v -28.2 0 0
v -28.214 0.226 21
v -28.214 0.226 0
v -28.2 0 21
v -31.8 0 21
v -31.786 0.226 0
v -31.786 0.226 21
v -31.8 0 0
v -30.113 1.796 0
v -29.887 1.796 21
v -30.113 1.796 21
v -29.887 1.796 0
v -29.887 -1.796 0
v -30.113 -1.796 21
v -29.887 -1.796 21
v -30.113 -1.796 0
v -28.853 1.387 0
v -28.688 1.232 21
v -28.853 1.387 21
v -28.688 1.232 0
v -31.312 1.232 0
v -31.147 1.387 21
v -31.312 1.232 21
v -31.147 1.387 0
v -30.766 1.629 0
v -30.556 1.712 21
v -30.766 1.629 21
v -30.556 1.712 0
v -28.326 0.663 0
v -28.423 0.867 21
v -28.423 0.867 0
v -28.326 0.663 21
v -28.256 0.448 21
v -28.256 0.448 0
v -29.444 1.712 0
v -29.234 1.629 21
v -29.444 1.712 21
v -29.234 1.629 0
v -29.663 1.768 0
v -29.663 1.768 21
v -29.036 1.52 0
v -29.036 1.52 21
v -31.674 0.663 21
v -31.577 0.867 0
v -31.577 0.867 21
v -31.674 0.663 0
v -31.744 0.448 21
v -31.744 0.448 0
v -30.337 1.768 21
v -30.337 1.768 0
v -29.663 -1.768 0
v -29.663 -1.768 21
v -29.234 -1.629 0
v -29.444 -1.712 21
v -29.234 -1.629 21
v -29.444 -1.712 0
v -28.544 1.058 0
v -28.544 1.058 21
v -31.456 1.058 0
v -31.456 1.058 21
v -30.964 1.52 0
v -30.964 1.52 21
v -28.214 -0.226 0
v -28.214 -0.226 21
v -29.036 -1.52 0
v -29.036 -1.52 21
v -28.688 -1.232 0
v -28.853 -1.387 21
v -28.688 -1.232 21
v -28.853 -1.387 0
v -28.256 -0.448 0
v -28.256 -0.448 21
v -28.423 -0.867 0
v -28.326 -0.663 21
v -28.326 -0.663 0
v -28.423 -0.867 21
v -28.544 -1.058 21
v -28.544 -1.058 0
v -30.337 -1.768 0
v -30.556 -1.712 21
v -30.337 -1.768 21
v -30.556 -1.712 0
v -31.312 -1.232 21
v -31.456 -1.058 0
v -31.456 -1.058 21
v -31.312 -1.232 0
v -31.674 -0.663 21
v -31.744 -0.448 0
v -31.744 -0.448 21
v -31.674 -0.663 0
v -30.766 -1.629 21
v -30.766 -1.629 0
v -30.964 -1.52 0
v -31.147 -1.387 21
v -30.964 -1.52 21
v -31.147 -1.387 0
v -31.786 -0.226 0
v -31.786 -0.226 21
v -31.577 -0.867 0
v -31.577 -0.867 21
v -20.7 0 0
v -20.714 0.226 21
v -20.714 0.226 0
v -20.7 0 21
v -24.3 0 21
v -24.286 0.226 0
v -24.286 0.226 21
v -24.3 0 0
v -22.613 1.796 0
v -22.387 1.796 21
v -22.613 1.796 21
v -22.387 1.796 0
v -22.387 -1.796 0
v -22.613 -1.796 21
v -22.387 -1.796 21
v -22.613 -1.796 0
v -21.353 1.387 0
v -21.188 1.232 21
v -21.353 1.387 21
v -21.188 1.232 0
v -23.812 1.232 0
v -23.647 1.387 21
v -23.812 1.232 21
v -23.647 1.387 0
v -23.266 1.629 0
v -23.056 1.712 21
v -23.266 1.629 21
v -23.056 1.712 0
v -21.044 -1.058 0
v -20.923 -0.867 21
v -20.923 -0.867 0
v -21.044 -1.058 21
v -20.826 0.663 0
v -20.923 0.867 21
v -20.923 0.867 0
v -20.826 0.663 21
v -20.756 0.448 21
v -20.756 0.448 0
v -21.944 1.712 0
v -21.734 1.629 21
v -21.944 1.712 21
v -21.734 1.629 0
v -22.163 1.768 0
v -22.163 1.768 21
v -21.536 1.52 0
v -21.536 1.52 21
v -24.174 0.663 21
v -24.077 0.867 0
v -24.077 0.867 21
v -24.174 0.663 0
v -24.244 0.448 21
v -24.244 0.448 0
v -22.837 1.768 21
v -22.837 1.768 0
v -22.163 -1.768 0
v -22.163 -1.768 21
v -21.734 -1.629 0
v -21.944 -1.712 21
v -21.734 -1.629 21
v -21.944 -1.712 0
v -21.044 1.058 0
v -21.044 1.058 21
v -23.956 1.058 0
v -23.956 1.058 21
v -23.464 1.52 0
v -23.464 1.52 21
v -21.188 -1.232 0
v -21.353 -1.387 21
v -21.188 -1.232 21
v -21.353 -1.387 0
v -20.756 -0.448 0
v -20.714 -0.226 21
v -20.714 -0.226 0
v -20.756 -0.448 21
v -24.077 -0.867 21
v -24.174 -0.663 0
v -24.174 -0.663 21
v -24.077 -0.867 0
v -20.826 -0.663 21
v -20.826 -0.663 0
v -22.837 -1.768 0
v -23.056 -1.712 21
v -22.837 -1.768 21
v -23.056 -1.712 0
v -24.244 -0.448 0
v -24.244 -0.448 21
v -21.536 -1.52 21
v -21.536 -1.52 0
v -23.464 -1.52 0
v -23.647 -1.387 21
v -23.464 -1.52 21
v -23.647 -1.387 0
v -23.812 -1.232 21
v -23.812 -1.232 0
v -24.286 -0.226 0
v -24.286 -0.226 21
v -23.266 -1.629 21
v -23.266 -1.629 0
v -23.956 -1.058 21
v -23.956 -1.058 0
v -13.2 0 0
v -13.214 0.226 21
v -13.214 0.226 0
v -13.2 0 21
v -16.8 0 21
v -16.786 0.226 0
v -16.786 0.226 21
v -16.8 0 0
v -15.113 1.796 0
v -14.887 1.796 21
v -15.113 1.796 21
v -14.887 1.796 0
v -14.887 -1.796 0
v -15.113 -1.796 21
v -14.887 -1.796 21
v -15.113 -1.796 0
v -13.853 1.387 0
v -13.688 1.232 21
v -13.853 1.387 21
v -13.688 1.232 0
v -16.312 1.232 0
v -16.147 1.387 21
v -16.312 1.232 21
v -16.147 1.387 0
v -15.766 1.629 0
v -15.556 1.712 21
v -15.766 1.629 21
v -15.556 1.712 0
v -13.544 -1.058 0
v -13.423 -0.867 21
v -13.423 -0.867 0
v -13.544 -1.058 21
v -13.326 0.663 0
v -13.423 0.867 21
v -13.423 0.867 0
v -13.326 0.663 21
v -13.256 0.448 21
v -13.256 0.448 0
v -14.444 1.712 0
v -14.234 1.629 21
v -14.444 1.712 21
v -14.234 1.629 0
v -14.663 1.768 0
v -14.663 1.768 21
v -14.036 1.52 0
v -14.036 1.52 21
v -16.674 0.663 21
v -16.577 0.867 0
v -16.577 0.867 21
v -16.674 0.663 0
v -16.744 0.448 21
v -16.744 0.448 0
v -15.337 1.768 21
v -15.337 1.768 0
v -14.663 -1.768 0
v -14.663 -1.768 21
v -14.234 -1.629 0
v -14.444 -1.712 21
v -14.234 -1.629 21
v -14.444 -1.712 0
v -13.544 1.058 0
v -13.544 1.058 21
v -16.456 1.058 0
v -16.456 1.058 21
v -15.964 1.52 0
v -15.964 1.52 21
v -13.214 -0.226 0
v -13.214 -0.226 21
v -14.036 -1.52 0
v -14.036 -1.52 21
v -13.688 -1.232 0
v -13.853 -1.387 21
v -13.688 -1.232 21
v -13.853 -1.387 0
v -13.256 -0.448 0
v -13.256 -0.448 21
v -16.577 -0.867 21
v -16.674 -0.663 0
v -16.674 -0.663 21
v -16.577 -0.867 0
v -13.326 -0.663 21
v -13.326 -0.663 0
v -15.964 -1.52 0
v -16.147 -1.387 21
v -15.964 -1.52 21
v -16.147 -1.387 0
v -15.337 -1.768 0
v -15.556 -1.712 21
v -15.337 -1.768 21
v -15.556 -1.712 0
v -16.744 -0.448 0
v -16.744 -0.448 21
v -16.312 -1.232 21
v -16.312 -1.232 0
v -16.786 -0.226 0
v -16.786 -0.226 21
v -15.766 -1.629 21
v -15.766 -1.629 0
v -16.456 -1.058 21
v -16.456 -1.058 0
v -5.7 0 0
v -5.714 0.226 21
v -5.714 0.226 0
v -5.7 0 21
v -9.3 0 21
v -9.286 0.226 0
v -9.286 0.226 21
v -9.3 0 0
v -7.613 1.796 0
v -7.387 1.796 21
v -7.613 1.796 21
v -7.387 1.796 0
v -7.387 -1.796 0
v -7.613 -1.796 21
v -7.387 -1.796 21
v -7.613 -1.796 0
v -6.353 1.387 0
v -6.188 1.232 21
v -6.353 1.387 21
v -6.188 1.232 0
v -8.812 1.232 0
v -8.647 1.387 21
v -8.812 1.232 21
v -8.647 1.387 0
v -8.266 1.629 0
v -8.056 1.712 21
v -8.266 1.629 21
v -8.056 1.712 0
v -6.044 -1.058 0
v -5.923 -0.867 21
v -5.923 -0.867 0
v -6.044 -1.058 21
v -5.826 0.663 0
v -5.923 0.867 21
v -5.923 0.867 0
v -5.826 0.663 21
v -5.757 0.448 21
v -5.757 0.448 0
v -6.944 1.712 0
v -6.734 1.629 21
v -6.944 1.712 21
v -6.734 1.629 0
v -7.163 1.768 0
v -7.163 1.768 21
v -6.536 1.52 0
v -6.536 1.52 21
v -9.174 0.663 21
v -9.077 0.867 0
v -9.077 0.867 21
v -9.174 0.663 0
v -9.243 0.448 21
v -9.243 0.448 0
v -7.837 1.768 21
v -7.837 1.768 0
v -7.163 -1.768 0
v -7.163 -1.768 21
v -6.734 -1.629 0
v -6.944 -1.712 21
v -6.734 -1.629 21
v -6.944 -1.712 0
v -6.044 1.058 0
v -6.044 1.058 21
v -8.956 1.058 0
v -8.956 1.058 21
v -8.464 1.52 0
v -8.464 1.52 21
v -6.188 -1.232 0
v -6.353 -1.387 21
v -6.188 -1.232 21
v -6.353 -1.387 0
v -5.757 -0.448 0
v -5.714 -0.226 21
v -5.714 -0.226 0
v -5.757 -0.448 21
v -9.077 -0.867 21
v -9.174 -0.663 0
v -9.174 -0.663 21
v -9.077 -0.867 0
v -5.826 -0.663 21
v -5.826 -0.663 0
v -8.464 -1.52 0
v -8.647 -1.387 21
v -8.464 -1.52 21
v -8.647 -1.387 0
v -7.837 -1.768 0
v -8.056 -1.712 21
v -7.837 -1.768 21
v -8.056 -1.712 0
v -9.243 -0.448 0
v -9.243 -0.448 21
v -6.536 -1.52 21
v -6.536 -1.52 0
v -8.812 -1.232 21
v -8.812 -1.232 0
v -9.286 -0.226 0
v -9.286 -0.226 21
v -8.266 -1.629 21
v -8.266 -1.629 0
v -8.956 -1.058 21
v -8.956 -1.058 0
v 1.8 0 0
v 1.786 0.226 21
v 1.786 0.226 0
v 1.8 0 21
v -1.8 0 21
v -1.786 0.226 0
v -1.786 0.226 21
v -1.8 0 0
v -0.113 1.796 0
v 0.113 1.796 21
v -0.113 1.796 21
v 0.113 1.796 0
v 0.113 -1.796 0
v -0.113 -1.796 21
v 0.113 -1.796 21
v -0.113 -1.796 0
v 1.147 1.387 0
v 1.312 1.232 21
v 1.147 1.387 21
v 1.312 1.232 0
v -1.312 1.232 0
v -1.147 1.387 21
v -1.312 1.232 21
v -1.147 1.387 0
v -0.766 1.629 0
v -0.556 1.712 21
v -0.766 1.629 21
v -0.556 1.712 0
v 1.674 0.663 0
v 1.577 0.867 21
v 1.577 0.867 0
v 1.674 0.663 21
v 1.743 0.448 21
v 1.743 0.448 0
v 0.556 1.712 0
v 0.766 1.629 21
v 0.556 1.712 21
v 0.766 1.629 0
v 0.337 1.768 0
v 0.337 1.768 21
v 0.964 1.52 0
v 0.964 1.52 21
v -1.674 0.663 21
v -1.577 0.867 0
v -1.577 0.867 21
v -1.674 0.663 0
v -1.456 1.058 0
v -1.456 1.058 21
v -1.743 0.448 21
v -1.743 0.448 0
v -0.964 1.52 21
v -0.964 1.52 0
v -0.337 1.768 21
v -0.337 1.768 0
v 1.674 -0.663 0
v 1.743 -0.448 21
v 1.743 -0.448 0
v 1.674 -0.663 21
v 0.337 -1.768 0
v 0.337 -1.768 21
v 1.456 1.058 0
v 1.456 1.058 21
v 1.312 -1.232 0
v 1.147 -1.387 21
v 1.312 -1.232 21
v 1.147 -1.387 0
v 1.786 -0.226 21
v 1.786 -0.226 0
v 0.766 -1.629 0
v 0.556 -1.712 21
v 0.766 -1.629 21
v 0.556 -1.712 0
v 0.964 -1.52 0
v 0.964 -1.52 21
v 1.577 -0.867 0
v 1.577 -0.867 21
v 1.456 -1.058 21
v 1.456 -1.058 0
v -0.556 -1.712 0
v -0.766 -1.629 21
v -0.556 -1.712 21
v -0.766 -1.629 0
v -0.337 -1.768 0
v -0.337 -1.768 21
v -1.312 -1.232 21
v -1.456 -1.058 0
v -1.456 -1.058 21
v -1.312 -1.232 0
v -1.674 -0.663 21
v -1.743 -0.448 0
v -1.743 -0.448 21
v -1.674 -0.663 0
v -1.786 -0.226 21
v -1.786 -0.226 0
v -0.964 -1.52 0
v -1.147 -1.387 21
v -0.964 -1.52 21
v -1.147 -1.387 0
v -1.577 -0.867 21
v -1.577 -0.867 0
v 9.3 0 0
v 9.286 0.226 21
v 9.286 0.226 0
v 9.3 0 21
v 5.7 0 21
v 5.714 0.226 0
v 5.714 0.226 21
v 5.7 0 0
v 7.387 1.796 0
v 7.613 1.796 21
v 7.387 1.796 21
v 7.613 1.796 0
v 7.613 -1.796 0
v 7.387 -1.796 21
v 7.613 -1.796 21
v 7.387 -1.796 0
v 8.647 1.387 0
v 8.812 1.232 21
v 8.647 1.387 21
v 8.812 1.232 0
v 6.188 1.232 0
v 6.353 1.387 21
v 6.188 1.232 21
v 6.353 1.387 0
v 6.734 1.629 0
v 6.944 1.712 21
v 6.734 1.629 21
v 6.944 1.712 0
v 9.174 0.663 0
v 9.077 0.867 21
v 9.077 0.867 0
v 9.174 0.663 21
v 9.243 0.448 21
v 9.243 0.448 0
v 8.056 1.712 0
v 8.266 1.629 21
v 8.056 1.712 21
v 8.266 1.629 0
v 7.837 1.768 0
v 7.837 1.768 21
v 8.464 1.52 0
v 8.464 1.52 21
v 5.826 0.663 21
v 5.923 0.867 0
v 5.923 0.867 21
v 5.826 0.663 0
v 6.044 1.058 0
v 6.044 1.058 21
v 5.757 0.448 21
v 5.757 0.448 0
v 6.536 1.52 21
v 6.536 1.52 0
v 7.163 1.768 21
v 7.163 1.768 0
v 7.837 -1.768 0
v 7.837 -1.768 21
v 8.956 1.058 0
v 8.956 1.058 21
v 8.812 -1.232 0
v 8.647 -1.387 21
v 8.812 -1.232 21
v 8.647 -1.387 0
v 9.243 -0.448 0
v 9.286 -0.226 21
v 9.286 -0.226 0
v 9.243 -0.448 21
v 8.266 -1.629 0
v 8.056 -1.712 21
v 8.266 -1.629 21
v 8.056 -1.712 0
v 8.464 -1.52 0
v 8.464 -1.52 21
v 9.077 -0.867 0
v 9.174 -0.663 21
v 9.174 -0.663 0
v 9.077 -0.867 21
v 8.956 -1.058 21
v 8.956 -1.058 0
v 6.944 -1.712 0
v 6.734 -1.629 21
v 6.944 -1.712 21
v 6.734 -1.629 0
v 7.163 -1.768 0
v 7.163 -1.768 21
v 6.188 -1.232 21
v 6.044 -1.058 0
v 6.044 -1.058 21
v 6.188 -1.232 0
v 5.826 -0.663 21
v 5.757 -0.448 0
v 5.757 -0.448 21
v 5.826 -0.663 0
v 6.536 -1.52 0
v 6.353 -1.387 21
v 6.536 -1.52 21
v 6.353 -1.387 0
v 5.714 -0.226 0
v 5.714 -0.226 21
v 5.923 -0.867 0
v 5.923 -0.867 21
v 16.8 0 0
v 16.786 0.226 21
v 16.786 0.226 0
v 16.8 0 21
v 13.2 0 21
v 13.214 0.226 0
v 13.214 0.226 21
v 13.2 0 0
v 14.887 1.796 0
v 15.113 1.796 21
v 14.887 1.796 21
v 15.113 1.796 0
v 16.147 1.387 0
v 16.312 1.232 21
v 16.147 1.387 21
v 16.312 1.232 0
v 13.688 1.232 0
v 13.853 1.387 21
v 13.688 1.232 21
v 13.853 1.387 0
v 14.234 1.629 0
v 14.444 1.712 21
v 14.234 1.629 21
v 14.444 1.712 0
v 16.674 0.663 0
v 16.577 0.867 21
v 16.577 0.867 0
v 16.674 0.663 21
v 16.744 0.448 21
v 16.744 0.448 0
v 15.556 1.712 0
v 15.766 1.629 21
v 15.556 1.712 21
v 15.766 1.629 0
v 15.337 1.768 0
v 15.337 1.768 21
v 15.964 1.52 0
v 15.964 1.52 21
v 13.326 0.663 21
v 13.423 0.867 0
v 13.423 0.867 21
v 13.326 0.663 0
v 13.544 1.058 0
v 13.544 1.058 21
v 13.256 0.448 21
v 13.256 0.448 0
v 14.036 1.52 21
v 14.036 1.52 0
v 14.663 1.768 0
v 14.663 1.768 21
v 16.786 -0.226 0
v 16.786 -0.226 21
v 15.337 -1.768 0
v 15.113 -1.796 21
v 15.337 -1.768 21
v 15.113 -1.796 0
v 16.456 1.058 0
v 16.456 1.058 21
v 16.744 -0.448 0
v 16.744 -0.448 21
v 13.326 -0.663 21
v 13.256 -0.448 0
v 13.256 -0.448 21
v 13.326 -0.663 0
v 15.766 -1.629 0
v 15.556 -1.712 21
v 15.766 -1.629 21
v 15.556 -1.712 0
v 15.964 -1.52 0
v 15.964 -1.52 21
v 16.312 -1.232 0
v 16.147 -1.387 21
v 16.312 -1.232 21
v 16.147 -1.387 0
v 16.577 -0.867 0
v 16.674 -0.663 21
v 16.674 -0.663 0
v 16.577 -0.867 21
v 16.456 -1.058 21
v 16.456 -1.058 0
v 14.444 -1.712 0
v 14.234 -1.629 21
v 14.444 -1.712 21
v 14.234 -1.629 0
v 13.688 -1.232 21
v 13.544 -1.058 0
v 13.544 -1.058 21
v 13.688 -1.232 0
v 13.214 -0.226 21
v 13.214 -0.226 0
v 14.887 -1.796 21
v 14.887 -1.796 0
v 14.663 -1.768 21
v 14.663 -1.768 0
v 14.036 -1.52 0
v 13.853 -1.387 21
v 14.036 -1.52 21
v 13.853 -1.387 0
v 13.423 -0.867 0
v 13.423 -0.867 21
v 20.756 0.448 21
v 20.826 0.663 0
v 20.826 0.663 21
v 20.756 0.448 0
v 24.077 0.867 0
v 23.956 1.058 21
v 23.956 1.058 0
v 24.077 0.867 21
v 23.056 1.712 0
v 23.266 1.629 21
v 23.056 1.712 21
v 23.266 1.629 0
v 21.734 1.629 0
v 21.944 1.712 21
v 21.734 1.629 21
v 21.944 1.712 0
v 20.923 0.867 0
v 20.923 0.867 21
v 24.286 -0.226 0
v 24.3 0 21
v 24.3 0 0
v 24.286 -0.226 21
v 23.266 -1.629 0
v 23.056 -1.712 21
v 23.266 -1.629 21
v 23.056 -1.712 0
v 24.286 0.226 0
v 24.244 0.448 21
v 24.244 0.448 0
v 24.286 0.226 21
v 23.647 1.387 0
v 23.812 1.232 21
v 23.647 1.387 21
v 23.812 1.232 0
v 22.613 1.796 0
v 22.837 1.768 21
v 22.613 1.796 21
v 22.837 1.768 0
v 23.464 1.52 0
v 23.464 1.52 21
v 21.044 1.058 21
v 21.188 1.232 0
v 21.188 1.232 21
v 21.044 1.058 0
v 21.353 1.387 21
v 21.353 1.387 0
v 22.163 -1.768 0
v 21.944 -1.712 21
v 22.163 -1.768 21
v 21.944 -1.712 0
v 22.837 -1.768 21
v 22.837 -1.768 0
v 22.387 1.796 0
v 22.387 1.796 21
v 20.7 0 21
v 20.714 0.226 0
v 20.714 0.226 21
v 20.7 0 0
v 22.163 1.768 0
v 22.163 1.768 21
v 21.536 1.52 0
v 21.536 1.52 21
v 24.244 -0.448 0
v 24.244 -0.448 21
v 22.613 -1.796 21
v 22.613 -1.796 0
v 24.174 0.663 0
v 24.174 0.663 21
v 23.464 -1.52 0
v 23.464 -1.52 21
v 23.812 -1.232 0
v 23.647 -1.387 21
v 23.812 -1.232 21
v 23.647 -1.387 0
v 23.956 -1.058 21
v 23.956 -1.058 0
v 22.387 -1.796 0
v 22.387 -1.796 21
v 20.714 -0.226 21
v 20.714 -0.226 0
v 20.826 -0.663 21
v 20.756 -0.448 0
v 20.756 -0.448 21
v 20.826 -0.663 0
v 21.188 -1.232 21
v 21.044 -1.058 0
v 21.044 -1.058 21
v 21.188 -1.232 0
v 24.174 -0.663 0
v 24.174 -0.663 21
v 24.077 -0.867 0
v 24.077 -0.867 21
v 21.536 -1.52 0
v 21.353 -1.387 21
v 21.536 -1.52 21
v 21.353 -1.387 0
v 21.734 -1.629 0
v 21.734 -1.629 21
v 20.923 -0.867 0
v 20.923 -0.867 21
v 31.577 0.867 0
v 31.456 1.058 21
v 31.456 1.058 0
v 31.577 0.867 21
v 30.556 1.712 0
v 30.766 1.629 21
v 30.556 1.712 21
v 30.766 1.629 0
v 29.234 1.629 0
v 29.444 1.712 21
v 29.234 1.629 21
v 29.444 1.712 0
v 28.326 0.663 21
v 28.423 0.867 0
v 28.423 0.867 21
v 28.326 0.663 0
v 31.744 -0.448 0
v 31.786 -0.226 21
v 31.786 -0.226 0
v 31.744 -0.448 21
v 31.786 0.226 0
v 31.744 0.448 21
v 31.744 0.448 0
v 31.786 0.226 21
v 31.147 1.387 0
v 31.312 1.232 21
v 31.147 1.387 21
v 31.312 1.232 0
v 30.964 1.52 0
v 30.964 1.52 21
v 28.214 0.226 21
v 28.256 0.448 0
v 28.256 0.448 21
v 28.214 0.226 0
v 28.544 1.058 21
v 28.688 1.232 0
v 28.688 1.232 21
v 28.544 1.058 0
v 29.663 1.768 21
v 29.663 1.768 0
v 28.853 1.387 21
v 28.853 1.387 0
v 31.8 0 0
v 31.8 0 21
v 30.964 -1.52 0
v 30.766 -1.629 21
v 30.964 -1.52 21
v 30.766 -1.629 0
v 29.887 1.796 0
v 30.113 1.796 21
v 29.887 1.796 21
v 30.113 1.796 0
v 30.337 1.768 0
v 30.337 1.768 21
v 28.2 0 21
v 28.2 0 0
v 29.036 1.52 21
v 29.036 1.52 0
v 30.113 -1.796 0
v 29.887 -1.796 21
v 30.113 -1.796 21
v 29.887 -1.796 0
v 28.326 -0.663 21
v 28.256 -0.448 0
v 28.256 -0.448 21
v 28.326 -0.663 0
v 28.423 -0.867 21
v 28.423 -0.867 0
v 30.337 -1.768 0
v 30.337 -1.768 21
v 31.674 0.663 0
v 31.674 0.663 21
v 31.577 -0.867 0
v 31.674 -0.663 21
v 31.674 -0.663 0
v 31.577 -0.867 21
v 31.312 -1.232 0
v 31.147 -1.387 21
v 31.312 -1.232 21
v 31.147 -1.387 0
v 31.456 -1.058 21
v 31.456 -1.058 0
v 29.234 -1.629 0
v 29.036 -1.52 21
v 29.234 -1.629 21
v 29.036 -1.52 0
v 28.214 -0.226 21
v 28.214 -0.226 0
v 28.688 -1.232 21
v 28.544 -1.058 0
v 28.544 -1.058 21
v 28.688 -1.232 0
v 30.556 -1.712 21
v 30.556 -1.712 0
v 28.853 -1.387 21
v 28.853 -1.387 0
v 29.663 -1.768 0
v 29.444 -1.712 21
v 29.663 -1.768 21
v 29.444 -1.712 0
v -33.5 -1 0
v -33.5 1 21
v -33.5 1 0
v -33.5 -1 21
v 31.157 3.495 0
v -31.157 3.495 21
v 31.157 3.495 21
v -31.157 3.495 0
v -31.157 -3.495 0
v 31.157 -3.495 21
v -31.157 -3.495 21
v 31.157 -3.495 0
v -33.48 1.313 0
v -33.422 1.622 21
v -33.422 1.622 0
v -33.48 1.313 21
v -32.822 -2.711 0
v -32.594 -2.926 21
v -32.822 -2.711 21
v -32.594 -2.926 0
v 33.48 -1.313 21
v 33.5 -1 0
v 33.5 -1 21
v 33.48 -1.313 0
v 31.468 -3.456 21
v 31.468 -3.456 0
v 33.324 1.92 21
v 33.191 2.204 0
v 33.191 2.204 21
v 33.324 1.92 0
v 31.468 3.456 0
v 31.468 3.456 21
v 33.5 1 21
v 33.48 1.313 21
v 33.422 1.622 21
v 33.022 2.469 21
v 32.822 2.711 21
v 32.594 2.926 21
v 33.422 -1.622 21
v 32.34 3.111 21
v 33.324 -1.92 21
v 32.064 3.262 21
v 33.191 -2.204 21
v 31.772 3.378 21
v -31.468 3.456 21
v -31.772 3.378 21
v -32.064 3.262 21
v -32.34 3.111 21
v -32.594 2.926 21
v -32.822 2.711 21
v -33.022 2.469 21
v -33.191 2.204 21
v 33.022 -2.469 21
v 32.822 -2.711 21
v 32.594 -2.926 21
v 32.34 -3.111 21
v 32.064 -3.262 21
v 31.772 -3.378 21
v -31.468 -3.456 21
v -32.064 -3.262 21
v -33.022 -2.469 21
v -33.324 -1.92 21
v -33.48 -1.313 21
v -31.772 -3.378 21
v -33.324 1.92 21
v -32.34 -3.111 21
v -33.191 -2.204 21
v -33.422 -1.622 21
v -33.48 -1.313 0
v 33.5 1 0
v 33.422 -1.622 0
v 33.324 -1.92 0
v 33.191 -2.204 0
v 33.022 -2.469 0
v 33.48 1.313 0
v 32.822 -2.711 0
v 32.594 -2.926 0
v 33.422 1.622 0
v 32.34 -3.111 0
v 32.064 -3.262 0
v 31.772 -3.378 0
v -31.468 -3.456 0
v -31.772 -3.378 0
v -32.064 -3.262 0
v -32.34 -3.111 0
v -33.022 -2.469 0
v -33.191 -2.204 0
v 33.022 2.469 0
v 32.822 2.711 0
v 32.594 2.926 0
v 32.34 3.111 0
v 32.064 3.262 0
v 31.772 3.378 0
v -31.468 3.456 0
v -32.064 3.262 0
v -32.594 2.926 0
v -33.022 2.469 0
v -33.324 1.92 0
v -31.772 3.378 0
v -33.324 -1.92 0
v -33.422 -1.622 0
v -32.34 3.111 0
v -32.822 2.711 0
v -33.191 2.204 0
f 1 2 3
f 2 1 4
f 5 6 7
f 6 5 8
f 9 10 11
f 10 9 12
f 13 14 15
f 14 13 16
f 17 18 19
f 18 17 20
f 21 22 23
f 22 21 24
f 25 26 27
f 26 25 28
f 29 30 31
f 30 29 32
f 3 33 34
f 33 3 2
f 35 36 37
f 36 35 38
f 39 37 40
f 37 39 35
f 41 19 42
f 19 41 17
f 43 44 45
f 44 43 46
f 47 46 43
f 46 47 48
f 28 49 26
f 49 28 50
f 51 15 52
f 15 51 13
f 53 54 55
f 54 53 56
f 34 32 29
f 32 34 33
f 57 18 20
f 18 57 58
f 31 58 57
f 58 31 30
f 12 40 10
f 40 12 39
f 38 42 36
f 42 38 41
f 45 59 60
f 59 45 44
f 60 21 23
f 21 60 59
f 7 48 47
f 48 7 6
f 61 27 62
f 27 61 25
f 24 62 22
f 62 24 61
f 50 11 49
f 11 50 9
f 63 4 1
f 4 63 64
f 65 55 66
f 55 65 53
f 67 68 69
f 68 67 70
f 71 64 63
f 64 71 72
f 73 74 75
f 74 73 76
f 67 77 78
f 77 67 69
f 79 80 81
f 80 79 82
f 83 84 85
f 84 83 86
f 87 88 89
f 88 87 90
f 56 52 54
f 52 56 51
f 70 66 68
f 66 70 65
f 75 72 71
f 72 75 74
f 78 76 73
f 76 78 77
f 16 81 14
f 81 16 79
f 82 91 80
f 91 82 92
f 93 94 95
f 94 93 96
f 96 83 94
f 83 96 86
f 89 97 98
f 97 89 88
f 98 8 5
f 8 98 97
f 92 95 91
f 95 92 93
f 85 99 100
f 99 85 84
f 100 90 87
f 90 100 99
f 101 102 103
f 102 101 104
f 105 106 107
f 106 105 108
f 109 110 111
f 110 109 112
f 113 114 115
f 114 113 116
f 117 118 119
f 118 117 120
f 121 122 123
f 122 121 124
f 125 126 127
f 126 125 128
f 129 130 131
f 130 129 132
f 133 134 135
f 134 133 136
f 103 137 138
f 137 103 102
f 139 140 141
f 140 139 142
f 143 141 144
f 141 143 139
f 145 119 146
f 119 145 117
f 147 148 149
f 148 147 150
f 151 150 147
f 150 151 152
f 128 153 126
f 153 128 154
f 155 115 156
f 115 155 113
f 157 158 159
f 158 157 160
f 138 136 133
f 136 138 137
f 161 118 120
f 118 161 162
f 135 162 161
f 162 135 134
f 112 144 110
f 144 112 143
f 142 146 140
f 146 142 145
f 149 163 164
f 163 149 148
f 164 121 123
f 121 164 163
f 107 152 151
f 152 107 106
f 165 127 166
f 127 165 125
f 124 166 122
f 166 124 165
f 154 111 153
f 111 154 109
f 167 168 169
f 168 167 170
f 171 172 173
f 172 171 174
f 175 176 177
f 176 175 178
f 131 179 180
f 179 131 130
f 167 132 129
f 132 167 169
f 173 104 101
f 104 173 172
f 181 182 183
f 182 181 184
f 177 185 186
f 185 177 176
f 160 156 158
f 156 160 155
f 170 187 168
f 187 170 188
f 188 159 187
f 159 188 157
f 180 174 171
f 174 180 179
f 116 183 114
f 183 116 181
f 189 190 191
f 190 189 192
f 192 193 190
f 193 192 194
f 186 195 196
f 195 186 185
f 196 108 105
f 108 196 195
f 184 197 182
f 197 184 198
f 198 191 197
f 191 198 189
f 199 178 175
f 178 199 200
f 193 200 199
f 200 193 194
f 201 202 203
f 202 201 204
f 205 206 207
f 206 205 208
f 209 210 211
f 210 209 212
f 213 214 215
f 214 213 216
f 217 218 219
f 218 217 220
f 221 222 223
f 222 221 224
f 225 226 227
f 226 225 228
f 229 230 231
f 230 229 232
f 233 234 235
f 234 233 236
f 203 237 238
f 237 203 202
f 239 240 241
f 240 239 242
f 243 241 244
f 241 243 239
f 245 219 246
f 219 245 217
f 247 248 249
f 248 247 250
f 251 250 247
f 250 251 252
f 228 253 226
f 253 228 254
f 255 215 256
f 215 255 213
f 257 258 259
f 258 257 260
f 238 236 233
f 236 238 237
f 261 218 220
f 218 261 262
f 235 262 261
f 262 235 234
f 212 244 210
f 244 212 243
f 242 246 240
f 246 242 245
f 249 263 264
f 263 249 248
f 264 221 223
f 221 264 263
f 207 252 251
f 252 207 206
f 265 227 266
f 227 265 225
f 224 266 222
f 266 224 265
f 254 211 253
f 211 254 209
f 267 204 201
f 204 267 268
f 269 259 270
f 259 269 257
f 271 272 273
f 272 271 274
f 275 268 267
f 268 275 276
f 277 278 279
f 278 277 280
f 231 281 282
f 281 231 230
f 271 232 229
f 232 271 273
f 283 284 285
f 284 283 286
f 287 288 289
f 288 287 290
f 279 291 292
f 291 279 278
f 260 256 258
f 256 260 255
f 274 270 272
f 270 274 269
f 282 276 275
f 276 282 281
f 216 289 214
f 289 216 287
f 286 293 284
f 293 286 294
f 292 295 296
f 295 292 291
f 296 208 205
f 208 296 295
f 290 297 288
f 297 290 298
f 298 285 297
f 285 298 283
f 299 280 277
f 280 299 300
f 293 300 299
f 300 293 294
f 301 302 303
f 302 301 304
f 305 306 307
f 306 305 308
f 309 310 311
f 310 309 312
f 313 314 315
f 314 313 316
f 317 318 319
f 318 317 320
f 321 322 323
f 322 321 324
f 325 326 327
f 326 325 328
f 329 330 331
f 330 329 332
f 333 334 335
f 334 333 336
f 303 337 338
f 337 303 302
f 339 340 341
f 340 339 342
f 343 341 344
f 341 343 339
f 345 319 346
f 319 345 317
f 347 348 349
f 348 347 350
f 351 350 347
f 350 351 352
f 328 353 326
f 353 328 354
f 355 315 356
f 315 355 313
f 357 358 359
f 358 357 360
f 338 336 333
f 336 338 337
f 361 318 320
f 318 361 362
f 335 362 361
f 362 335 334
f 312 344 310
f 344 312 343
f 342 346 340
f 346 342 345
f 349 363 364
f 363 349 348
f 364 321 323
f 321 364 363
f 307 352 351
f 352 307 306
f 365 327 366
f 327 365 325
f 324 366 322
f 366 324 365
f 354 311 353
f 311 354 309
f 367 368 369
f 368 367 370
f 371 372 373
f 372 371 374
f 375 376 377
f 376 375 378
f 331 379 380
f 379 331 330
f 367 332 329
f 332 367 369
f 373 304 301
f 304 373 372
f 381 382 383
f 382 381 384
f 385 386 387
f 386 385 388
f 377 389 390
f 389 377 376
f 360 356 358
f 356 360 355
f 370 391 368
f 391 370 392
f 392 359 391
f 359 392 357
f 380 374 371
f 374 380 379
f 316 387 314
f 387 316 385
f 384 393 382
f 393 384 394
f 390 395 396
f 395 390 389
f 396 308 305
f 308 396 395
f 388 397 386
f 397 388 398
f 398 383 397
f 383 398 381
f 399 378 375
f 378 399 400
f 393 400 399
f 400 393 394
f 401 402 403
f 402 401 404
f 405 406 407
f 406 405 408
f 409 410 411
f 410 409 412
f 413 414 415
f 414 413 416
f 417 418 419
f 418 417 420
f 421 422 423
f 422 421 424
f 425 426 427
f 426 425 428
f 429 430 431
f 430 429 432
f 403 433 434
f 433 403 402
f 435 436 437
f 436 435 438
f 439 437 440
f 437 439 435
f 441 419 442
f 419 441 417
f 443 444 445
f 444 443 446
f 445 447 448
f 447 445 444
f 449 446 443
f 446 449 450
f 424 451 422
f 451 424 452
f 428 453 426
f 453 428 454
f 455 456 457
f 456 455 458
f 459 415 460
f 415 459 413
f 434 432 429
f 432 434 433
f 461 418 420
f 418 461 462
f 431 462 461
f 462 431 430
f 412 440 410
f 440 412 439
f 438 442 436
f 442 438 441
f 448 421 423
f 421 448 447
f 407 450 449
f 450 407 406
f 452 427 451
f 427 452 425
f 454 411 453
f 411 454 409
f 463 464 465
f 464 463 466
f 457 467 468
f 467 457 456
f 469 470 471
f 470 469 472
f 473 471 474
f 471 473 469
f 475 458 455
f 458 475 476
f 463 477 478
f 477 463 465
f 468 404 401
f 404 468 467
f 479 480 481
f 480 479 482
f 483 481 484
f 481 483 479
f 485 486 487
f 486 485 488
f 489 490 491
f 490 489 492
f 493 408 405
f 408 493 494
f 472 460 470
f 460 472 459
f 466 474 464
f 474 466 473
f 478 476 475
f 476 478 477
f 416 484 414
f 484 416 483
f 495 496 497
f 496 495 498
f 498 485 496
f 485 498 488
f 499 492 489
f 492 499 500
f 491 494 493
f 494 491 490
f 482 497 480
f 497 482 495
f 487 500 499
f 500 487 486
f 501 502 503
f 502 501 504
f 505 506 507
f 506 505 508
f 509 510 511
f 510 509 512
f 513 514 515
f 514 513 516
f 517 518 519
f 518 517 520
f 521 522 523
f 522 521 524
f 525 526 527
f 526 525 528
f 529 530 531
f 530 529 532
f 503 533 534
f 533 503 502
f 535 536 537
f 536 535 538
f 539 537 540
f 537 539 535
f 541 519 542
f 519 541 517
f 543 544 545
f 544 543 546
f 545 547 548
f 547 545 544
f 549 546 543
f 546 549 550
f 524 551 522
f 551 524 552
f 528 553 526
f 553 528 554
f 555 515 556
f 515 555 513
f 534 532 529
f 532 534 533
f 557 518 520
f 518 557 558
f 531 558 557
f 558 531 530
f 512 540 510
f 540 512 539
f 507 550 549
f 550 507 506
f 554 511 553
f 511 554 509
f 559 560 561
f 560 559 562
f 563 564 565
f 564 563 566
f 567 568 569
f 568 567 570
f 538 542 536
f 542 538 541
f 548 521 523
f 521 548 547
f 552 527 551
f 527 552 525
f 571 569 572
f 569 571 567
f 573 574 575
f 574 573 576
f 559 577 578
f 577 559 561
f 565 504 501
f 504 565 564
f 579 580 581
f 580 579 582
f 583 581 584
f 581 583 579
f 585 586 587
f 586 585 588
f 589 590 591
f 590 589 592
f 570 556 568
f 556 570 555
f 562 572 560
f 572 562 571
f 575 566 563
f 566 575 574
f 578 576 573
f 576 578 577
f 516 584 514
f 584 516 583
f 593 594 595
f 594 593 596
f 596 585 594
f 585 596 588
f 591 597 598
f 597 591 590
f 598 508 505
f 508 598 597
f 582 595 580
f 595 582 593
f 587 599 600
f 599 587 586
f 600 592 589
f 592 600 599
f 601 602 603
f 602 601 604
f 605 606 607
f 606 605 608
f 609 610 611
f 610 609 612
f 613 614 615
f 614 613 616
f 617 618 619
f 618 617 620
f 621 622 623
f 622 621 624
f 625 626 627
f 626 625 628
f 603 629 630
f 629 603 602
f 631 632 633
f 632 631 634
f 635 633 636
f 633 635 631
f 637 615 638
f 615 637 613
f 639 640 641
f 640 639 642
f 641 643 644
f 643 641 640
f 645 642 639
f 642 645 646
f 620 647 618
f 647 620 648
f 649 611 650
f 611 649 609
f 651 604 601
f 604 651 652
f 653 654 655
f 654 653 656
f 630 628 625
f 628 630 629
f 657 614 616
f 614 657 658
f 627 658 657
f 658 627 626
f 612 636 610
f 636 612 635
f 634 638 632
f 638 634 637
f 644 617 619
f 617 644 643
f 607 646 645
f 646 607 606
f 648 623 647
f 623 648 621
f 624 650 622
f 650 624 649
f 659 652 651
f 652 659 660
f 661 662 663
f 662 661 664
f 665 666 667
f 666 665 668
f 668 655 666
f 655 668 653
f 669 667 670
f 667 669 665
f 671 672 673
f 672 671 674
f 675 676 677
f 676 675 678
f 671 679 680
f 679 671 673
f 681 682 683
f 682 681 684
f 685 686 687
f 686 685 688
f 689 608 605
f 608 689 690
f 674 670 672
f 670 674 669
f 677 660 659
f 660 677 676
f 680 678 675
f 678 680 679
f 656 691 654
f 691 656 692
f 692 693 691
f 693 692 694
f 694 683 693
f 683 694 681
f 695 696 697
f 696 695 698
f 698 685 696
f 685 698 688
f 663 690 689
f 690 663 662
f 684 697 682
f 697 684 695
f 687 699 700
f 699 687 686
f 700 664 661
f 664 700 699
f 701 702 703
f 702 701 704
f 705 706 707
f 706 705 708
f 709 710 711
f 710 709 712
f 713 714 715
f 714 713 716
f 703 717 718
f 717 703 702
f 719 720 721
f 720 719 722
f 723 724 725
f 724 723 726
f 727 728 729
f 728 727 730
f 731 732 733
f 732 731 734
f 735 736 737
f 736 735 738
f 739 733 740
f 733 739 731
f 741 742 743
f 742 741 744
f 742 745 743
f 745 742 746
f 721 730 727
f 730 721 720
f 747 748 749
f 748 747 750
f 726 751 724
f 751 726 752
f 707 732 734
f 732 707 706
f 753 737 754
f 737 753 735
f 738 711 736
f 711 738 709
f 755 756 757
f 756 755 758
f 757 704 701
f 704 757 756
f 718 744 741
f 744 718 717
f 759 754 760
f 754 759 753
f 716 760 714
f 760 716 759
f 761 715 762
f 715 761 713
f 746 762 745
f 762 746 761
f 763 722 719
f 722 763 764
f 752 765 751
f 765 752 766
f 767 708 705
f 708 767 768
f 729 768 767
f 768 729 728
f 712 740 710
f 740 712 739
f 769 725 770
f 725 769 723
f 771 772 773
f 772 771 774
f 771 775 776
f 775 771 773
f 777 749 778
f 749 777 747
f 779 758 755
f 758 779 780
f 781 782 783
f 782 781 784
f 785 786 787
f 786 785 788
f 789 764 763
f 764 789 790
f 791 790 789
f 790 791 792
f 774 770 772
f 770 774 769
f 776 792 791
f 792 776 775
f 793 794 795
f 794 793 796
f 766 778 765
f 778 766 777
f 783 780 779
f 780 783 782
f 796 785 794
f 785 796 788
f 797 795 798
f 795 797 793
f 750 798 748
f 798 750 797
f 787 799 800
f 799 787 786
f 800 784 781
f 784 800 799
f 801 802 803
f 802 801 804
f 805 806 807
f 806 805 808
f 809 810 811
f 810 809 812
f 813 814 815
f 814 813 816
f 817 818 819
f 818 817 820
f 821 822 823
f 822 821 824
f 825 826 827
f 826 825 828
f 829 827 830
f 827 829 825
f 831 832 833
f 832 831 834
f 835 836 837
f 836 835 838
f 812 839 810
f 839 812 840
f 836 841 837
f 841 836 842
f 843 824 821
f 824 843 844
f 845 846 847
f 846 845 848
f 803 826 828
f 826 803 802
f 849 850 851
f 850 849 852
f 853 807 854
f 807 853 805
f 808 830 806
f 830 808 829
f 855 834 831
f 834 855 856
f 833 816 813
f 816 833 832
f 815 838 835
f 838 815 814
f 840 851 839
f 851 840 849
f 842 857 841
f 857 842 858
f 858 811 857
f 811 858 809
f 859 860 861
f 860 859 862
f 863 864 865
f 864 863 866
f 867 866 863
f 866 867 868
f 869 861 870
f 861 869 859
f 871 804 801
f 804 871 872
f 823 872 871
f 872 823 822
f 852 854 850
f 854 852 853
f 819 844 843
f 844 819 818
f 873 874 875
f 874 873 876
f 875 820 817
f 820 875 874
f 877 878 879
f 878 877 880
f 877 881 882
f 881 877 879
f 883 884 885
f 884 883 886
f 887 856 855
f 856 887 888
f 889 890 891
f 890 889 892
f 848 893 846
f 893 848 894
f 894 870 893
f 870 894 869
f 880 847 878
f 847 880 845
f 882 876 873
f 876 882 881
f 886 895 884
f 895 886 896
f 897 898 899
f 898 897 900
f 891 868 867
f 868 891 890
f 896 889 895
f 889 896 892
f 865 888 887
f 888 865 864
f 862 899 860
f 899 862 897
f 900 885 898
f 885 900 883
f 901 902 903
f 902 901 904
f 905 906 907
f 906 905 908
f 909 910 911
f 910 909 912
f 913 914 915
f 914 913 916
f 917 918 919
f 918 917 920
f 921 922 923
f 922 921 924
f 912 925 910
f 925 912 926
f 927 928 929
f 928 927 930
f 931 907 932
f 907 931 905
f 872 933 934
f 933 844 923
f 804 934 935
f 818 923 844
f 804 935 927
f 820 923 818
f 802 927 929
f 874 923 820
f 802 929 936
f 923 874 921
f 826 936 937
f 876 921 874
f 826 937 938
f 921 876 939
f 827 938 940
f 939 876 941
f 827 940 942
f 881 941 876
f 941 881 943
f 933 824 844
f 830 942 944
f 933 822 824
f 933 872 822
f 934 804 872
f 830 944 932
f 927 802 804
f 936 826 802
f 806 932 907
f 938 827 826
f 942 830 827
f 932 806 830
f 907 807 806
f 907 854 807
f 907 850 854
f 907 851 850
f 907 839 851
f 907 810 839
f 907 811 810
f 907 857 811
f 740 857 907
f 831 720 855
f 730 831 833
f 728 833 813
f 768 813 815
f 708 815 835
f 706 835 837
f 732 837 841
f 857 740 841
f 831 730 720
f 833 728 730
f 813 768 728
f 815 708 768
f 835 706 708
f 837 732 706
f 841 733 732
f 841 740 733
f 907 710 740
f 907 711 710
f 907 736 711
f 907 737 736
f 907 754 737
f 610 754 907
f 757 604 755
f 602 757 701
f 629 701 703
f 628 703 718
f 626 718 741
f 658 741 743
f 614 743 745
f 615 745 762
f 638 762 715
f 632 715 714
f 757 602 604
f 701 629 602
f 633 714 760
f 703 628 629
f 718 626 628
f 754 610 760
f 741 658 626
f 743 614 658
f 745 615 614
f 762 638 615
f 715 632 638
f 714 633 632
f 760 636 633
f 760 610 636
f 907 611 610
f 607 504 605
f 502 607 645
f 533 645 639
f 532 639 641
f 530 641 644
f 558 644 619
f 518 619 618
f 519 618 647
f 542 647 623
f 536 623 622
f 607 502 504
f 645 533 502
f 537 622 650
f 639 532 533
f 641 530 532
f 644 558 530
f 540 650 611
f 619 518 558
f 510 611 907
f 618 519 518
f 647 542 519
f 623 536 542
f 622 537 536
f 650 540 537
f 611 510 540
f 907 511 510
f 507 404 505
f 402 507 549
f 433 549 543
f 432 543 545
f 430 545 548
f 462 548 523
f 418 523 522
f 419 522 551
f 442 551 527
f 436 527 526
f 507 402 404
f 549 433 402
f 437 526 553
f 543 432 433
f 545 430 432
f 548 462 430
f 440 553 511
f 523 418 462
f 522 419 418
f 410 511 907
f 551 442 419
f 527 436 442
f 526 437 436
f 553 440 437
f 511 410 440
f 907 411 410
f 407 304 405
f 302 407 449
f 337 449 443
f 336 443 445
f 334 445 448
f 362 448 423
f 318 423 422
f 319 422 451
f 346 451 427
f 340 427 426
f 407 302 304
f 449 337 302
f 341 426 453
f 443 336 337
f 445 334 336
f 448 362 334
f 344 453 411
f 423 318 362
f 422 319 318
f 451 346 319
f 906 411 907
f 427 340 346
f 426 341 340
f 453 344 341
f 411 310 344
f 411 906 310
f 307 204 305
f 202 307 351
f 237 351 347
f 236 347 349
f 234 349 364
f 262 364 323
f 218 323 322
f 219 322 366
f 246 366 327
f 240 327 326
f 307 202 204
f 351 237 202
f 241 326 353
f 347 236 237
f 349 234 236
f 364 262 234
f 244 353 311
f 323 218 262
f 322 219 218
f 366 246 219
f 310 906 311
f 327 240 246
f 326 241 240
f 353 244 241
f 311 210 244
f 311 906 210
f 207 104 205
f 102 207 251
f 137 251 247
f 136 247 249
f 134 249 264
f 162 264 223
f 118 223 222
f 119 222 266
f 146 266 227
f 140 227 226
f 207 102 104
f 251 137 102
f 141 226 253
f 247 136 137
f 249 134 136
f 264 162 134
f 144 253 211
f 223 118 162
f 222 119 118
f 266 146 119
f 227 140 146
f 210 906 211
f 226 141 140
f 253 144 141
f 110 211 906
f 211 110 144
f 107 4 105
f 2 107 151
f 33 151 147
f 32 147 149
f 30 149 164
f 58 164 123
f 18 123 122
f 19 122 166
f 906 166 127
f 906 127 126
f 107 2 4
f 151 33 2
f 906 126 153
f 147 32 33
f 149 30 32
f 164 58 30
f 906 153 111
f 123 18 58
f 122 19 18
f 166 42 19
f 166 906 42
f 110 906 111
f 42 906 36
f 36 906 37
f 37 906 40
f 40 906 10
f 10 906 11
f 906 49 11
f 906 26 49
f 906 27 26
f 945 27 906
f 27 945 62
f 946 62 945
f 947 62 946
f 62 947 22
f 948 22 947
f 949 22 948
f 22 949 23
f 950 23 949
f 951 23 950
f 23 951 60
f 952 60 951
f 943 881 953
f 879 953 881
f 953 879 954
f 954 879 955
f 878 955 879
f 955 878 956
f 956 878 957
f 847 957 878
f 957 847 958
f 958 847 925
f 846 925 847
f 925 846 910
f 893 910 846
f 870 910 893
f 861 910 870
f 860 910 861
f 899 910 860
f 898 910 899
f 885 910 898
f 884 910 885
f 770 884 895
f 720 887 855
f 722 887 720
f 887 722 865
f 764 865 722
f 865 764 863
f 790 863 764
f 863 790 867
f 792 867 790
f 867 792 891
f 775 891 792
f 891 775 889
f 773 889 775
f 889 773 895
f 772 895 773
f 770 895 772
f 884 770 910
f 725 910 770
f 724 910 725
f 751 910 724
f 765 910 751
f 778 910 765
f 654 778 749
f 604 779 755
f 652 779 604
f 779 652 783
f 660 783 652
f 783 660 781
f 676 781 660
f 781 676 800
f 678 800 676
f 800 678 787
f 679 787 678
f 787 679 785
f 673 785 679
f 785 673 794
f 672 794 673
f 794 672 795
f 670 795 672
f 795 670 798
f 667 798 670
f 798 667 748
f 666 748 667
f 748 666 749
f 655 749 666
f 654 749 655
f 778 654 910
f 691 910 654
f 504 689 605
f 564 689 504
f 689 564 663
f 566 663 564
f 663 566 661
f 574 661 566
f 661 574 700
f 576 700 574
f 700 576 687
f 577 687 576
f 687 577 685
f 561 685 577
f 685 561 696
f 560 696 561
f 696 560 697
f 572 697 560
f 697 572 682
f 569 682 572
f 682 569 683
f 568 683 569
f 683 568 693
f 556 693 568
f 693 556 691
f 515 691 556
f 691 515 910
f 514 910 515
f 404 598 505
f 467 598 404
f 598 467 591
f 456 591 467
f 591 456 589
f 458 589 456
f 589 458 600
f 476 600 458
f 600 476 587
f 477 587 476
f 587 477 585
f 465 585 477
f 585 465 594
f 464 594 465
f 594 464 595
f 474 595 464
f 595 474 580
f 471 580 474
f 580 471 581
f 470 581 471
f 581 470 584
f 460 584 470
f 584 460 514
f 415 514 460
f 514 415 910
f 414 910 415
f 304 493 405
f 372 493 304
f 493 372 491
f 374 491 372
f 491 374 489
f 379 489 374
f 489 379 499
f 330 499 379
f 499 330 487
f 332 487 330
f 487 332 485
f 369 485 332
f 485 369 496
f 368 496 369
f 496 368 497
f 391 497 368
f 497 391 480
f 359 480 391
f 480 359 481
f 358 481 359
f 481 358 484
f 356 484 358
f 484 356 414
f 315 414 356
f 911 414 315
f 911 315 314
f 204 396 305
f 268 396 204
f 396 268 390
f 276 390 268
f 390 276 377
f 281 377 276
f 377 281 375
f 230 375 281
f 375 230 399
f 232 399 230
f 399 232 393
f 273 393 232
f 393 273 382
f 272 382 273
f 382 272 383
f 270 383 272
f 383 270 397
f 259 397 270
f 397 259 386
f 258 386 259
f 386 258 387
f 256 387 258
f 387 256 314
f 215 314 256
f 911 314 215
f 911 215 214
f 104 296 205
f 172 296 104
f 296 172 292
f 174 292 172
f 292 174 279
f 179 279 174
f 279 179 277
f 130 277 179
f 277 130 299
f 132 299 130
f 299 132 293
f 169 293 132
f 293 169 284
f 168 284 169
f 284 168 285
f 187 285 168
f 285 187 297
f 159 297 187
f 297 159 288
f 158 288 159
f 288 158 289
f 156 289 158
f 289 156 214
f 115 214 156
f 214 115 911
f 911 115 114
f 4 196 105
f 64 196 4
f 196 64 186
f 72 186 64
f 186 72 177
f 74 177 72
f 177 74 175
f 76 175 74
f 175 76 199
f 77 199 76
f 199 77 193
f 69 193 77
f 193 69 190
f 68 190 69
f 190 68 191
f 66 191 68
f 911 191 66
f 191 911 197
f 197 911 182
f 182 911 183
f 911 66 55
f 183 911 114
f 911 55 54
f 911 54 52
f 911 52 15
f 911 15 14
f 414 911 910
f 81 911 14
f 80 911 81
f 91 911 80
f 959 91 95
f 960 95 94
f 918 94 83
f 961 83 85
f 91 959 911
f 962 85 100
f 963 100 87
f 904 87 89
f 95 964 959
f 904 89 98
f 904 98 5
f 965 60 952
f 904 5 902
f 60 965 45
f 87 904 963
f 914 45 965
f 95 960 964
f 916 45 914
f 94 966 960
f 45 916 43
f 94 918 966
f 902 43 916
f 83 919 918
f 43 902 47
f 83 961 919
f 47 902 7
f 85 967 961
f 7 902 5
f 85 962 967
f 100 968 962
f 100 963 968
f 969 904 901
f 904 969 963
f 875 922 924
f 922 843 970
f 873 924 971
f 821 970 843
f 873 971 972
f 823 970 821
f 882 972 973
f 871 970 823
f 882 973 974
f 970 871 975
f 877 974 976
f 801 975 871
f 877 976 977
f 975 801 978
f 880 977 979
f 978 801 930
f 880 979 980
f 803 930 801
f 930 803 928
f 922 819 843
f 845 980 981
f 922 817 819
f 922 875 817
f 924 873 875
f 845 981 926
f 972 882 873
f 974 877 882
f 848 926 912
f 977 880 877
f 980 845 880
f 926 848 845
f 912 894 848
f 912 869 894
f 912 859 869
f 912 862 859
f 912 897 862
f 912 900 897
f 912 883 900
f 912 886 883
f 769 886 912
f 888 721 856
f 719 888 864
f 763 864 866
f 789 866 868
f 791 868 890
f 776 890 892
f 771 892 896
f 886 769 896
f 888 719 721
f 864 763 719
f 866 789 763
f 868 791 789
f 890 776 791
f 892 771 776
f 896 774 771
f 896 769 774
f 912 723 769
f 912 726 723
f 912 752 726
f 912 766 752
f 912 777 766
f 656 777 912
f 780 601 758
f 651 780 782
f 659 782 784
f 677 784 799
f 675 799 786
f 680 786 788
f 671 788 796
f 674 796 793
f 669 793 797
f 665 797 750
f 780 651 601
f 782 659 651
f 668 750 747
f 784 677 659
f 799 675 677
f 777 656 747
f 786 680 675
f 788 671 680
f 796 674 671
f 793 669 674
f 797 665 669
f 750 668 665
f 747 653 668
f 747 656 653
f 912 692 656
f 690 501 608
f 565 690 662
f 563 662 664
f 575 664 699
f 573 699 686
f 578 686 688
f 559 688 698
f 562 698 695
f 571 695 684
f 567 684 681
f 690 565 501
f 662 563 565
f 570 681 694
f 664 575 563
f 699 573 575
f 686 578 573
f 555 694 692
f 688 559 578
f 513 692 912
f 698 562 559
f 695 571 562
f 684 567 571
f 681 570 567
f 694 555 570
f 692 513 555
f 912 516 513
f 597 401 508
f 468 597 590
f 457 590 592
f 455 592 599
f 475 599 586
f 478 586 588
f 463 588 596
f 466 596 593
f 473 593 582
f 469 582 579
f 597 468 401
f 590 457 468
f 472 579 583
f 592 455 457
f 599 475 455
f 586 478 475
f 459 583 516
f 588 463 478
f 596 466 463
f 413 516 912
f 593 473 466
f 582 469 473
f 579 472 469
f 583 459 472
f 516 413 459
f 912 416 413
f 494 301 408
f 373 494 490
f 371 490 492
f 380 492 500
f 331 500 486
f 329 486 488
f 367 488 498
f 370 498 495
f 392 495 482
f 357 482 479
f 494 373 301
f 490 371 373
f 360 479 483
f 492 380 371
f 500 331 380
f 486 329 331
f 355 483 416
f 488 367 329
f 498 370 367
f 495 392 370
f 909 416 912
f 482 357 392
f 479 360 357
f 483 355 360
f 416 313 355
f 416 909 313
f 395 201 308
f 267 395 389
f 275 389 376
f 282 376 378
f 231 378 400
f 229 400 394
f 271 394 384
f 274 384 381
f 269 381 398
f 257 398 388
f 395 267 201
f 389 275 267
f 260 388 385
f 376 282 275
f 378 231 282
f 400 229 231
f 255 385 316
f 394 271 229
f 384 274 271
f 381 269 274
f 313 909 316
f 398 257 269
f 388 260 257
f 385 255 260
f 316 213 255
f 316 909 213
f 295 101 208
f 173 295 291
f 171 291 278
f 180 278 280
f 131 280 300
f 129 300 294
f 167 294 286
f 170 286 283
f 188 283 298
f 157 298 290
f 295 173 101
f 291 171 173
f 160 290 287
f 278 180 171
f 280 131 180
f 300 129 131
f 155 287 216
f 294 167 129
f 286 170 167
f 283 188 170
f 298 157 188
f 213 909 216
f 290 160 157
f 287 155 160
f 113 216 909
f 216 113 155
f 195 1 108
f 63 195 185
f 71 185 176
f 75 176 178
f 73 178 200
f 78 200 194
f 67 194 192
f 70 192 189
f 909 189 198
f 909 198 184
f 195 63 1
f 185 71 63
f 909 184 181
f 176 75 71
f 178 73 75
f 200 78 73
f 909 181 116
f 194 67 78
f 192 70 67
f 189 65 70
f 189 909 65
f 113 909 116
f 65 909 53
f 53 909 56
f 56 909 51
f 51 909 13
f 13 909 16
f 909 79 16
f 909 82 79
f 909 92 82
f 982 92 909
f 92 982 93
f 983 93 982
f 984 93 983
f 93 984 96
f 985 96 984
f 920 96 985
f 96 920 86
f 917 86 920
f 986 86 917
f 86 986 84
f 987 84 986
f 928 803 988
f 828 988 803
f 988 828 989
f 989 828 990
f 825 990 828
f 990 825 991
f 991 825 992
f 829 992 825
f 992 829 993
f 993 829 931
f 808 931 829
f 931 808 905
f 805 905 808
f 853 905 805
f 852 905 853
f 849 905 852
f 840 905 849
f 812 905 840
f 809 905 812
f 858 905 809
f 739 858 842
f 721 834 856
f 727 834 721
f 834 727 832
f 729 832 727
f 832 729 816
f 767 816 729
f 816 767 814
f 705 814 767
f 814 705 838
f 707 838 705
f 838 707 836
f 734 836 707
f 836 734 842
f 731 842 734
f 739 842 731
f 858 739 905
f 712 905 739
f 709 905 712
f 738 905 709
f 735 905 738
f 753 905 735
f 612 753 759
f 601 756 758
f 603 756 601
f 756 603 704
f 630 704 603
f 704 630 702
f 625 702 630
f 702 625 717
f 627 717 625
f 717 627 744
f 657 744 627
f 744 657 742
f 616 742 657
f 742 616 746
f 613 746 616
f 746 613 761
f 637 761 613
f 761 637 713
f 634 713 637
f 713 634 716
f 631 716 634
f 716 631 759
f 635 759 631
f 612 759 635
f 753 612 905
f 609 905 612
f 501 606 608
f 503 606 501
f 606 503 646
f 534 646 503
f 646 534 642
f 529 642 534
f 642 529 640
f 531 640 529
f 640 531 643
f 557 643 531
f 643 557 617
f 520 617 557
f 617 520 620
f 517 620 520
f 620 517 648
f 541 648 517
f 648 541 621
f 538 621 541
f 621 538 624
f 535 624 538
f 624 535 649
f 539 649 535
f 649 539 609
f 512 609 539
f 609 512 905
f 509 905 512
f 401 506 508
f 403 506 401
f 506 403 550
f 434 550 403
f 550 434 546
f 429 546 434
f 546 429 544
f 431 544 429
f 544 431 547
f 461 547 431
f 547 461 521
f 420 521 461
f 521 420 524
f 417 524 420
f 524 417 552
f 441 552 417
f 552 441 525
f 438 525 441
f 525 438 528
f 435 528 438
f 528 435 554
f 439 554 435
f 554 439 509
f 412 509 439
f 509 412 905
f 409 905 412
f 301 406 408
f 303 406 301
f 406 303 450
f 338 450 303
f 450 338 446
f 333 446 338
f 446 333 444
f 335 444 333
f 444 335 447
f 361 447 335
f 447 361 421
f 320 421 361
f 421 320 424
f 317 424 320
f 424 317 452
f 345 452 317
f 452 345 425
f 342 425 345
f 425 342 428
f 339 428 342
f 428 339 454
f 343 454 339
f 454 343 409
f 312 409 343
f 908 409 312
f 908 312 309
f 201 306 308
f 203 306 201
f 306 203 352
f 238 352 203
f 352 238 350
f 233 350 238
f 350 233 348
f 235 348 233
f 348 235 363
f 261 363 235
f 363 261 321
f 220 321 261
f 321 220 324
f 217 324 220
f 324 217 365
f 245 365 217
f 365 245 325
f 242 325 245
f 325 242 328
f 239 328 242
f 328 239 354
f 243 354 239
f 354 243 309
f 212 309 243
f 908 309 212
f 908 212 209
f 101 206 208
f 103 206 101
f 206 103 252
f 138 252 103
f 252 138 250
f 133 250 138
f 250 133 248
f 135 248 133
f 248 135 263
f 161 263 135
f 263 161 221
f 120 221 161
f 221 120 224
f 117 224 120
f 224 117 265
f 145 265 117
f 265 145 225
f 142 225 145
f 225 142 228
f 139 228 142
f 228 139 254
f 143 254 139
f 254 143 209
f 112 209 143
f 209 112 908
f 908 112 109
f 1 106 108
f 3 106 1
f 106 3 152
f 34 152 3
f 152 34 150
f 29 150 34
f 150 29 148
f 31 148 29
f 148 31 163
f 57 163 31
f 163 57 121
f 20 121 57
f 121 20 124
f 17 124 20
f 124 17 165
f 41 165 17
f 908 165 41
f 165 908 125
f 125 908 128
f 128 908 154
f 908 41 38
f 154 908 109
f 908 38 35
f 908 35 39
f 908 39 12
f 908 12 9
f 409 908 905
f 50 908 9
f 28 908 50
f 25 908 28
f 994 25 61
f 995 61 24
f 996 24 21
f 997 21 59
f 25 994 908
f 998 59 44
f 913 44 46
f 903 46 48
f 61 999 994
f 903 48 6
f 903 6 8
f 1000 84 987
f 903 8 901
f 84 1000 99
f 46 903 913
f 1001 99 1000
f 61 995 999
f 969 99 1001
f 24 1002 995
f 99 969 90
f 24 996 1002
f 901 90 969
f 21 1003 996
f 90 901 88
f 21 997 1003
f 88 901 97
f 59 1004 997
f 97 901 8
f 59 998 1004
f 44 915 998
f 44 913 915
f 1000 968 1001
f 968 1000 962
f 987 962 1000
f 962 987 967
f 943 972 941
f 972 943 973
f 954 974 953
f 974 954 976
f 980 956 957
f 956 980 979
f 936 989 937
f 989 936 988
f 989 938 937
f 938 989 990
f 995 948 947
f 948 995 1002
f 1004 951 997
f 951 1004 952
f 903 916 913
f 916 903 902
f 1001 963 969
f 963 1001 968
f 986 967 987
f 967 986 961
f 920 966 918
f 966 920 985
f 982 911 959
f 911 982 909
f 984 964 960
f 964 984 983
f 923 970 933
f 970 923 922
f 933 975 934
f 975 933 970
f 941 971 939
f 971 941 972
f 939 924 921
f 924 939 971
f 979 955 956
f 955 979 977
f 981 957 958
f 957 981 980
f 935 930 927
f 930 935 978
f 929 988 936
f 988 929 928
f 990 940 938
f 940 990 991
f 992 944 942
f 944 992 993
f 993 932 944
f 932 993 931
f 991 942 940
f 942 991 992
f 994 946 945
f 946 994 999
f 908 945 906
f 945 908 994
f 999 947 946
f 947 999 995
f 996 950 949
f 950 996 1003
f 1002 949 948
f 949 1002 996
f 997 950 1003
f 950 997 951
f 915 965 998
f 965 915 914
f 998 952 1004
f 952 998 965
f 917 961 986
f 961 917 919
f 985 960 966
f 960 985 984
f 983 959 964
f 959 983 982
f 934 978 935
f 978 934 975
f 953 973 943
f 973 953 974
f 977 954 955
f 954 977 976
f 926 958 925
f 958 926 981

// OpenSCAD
$fn = 50;


difference() {
	union() {
		translate(v = [0, 0, 0]) {
			rotate(a = [0, 0, 0]) {
				hull() {
					translate(v = [-31.0000000000, 1.0000000000, 0]) {
						rotate(a = [0, 0, 0]) {
							translate(v = [0, 0, 0]) {
								rotate(a = [0, 0, 0]) {
									cylinder(h = 21, r = 2.5000000000);
								}
							}
						}
					}
					translate(v = [31.0000000000, 1.0000000000, 0]) {
						rotate(a = [0, 0, 0]) {
							translate(v = [0, 0, 0]) {
								rotate(a = [0, 0, 0]) {
									cylinder(h = 21, r = 2.5000000000);
								}
							}
						}
					}
					translate(v = [-31.0000000000, -1.0000000000, 0]) {
						rotate(a = [0, 0, 0]) {
							translate(v = [0, 0, 0]) {
								rotate(a = [0, 0, 0]) {
									cylinder(h = 21, r = 2.5000000000);
								}
							}
						}
					}
					translate(v = [31.0000000000, -1.0000000000, 0]) {
						rotate(a = [0, 0, 0]) {
							translate(v = [0, 0, 0]) {
								rotate(a = [0, 0, 0]) {
									cylinder(h = 21, r = 2.5000000000);
								}
							}
						}
					}
				}
			}
		}
	}
	union() {
		translate(v = [-30.0000000000, 0.0000000000, 0]) {
			rotate(a = [0, 0, 0]) {
				translate(v = [0, 0, -50]) {
					rotate(a = [0, 0, 0]) {
						cylinder(h = 100, r = 1.8000000000);
					}
				}
			}
		}
		translate(v = [-22.5000000000, 0.0000000000, 0]) {
			rotate(a = [0, 0, 0]) {
				translate(v = [0, 0, -50]) {
					rotate(a = [0, 0, 0]) {
						cylinder(h = 100, r = 1.8000000000);
					}
				}
			}
		}
		translate(v = [-15.0000000000, 0.0000000000, 0]) {
			rotate(a = [0, 0, 0]) {
				translate(v = [0, 0, -50]) {
					rotate(a = [0, 0, 0]) {
						cylinder(h = 100, r = 1.8000000000);
					}
				}
			}
		}
		translate(v = [-7.5000000000, 0.0000000000, 0]) {
			rotate(a = [0, 0, 0]) {
				translate(v = [0, 0, -50]) {
					rotate(a = [0, 0, 0]) {
						cylinder(h = 100, r = 1.8000000000);
					}
				}
			}
		}
		translate(v = [0.0000000000, 0.0000000000, 0]) {
			rotate(a = [0, 0, 0]) {
				translate(v = [0, 0, -50]) {
					rotate(a = [0, 0, 0]) {
						cylinder(h = 100, r = 1.8000000000);
					}
				}
			}
		}
		translate(v = [7.5000000000, 0.0000000000, 0]) {
			rotate(a = [0, 0, 0]) {
				translate(v = [0, 0, -50]) {
					rotate(a = [0, 0, 0]) {
						cylinder(h = 100, r = 1.8000000000);
					}
				}
			}
		}
		translate(v = [15.0000000000, 0.0000000000, 0]) {
			rotate(a = [0, 0, 0]) {
				translate(v = [0, 0, -50]) {
					rotate(a = [0, 0, 0]) {
						cylinder(h = 100, r = 1.8000000000);
					}
				}
			}
		}
		translate(v = [22.5000000000, 0.0000000000, 0]) {
			rotate(a = [0, 0, 0]) {
				translate(v = [0, 0, -50]) {
					rotate(a = [0, 0, 0]) {
						cylinder(h = 100, r = 1.8000000000);
					}
				}
			}
		}
		translate(v = [30.0000000000, 0.0000000000, 0]) {
			rotate(a = [0, 0, 0]) {
				translate(v = [0, 0, -50]) {
					rotate(a = [0, 0, 0]) {
						cylinder(h = 100, r = 1.8000000000);
					}
				}
			}
		}
	}
}
